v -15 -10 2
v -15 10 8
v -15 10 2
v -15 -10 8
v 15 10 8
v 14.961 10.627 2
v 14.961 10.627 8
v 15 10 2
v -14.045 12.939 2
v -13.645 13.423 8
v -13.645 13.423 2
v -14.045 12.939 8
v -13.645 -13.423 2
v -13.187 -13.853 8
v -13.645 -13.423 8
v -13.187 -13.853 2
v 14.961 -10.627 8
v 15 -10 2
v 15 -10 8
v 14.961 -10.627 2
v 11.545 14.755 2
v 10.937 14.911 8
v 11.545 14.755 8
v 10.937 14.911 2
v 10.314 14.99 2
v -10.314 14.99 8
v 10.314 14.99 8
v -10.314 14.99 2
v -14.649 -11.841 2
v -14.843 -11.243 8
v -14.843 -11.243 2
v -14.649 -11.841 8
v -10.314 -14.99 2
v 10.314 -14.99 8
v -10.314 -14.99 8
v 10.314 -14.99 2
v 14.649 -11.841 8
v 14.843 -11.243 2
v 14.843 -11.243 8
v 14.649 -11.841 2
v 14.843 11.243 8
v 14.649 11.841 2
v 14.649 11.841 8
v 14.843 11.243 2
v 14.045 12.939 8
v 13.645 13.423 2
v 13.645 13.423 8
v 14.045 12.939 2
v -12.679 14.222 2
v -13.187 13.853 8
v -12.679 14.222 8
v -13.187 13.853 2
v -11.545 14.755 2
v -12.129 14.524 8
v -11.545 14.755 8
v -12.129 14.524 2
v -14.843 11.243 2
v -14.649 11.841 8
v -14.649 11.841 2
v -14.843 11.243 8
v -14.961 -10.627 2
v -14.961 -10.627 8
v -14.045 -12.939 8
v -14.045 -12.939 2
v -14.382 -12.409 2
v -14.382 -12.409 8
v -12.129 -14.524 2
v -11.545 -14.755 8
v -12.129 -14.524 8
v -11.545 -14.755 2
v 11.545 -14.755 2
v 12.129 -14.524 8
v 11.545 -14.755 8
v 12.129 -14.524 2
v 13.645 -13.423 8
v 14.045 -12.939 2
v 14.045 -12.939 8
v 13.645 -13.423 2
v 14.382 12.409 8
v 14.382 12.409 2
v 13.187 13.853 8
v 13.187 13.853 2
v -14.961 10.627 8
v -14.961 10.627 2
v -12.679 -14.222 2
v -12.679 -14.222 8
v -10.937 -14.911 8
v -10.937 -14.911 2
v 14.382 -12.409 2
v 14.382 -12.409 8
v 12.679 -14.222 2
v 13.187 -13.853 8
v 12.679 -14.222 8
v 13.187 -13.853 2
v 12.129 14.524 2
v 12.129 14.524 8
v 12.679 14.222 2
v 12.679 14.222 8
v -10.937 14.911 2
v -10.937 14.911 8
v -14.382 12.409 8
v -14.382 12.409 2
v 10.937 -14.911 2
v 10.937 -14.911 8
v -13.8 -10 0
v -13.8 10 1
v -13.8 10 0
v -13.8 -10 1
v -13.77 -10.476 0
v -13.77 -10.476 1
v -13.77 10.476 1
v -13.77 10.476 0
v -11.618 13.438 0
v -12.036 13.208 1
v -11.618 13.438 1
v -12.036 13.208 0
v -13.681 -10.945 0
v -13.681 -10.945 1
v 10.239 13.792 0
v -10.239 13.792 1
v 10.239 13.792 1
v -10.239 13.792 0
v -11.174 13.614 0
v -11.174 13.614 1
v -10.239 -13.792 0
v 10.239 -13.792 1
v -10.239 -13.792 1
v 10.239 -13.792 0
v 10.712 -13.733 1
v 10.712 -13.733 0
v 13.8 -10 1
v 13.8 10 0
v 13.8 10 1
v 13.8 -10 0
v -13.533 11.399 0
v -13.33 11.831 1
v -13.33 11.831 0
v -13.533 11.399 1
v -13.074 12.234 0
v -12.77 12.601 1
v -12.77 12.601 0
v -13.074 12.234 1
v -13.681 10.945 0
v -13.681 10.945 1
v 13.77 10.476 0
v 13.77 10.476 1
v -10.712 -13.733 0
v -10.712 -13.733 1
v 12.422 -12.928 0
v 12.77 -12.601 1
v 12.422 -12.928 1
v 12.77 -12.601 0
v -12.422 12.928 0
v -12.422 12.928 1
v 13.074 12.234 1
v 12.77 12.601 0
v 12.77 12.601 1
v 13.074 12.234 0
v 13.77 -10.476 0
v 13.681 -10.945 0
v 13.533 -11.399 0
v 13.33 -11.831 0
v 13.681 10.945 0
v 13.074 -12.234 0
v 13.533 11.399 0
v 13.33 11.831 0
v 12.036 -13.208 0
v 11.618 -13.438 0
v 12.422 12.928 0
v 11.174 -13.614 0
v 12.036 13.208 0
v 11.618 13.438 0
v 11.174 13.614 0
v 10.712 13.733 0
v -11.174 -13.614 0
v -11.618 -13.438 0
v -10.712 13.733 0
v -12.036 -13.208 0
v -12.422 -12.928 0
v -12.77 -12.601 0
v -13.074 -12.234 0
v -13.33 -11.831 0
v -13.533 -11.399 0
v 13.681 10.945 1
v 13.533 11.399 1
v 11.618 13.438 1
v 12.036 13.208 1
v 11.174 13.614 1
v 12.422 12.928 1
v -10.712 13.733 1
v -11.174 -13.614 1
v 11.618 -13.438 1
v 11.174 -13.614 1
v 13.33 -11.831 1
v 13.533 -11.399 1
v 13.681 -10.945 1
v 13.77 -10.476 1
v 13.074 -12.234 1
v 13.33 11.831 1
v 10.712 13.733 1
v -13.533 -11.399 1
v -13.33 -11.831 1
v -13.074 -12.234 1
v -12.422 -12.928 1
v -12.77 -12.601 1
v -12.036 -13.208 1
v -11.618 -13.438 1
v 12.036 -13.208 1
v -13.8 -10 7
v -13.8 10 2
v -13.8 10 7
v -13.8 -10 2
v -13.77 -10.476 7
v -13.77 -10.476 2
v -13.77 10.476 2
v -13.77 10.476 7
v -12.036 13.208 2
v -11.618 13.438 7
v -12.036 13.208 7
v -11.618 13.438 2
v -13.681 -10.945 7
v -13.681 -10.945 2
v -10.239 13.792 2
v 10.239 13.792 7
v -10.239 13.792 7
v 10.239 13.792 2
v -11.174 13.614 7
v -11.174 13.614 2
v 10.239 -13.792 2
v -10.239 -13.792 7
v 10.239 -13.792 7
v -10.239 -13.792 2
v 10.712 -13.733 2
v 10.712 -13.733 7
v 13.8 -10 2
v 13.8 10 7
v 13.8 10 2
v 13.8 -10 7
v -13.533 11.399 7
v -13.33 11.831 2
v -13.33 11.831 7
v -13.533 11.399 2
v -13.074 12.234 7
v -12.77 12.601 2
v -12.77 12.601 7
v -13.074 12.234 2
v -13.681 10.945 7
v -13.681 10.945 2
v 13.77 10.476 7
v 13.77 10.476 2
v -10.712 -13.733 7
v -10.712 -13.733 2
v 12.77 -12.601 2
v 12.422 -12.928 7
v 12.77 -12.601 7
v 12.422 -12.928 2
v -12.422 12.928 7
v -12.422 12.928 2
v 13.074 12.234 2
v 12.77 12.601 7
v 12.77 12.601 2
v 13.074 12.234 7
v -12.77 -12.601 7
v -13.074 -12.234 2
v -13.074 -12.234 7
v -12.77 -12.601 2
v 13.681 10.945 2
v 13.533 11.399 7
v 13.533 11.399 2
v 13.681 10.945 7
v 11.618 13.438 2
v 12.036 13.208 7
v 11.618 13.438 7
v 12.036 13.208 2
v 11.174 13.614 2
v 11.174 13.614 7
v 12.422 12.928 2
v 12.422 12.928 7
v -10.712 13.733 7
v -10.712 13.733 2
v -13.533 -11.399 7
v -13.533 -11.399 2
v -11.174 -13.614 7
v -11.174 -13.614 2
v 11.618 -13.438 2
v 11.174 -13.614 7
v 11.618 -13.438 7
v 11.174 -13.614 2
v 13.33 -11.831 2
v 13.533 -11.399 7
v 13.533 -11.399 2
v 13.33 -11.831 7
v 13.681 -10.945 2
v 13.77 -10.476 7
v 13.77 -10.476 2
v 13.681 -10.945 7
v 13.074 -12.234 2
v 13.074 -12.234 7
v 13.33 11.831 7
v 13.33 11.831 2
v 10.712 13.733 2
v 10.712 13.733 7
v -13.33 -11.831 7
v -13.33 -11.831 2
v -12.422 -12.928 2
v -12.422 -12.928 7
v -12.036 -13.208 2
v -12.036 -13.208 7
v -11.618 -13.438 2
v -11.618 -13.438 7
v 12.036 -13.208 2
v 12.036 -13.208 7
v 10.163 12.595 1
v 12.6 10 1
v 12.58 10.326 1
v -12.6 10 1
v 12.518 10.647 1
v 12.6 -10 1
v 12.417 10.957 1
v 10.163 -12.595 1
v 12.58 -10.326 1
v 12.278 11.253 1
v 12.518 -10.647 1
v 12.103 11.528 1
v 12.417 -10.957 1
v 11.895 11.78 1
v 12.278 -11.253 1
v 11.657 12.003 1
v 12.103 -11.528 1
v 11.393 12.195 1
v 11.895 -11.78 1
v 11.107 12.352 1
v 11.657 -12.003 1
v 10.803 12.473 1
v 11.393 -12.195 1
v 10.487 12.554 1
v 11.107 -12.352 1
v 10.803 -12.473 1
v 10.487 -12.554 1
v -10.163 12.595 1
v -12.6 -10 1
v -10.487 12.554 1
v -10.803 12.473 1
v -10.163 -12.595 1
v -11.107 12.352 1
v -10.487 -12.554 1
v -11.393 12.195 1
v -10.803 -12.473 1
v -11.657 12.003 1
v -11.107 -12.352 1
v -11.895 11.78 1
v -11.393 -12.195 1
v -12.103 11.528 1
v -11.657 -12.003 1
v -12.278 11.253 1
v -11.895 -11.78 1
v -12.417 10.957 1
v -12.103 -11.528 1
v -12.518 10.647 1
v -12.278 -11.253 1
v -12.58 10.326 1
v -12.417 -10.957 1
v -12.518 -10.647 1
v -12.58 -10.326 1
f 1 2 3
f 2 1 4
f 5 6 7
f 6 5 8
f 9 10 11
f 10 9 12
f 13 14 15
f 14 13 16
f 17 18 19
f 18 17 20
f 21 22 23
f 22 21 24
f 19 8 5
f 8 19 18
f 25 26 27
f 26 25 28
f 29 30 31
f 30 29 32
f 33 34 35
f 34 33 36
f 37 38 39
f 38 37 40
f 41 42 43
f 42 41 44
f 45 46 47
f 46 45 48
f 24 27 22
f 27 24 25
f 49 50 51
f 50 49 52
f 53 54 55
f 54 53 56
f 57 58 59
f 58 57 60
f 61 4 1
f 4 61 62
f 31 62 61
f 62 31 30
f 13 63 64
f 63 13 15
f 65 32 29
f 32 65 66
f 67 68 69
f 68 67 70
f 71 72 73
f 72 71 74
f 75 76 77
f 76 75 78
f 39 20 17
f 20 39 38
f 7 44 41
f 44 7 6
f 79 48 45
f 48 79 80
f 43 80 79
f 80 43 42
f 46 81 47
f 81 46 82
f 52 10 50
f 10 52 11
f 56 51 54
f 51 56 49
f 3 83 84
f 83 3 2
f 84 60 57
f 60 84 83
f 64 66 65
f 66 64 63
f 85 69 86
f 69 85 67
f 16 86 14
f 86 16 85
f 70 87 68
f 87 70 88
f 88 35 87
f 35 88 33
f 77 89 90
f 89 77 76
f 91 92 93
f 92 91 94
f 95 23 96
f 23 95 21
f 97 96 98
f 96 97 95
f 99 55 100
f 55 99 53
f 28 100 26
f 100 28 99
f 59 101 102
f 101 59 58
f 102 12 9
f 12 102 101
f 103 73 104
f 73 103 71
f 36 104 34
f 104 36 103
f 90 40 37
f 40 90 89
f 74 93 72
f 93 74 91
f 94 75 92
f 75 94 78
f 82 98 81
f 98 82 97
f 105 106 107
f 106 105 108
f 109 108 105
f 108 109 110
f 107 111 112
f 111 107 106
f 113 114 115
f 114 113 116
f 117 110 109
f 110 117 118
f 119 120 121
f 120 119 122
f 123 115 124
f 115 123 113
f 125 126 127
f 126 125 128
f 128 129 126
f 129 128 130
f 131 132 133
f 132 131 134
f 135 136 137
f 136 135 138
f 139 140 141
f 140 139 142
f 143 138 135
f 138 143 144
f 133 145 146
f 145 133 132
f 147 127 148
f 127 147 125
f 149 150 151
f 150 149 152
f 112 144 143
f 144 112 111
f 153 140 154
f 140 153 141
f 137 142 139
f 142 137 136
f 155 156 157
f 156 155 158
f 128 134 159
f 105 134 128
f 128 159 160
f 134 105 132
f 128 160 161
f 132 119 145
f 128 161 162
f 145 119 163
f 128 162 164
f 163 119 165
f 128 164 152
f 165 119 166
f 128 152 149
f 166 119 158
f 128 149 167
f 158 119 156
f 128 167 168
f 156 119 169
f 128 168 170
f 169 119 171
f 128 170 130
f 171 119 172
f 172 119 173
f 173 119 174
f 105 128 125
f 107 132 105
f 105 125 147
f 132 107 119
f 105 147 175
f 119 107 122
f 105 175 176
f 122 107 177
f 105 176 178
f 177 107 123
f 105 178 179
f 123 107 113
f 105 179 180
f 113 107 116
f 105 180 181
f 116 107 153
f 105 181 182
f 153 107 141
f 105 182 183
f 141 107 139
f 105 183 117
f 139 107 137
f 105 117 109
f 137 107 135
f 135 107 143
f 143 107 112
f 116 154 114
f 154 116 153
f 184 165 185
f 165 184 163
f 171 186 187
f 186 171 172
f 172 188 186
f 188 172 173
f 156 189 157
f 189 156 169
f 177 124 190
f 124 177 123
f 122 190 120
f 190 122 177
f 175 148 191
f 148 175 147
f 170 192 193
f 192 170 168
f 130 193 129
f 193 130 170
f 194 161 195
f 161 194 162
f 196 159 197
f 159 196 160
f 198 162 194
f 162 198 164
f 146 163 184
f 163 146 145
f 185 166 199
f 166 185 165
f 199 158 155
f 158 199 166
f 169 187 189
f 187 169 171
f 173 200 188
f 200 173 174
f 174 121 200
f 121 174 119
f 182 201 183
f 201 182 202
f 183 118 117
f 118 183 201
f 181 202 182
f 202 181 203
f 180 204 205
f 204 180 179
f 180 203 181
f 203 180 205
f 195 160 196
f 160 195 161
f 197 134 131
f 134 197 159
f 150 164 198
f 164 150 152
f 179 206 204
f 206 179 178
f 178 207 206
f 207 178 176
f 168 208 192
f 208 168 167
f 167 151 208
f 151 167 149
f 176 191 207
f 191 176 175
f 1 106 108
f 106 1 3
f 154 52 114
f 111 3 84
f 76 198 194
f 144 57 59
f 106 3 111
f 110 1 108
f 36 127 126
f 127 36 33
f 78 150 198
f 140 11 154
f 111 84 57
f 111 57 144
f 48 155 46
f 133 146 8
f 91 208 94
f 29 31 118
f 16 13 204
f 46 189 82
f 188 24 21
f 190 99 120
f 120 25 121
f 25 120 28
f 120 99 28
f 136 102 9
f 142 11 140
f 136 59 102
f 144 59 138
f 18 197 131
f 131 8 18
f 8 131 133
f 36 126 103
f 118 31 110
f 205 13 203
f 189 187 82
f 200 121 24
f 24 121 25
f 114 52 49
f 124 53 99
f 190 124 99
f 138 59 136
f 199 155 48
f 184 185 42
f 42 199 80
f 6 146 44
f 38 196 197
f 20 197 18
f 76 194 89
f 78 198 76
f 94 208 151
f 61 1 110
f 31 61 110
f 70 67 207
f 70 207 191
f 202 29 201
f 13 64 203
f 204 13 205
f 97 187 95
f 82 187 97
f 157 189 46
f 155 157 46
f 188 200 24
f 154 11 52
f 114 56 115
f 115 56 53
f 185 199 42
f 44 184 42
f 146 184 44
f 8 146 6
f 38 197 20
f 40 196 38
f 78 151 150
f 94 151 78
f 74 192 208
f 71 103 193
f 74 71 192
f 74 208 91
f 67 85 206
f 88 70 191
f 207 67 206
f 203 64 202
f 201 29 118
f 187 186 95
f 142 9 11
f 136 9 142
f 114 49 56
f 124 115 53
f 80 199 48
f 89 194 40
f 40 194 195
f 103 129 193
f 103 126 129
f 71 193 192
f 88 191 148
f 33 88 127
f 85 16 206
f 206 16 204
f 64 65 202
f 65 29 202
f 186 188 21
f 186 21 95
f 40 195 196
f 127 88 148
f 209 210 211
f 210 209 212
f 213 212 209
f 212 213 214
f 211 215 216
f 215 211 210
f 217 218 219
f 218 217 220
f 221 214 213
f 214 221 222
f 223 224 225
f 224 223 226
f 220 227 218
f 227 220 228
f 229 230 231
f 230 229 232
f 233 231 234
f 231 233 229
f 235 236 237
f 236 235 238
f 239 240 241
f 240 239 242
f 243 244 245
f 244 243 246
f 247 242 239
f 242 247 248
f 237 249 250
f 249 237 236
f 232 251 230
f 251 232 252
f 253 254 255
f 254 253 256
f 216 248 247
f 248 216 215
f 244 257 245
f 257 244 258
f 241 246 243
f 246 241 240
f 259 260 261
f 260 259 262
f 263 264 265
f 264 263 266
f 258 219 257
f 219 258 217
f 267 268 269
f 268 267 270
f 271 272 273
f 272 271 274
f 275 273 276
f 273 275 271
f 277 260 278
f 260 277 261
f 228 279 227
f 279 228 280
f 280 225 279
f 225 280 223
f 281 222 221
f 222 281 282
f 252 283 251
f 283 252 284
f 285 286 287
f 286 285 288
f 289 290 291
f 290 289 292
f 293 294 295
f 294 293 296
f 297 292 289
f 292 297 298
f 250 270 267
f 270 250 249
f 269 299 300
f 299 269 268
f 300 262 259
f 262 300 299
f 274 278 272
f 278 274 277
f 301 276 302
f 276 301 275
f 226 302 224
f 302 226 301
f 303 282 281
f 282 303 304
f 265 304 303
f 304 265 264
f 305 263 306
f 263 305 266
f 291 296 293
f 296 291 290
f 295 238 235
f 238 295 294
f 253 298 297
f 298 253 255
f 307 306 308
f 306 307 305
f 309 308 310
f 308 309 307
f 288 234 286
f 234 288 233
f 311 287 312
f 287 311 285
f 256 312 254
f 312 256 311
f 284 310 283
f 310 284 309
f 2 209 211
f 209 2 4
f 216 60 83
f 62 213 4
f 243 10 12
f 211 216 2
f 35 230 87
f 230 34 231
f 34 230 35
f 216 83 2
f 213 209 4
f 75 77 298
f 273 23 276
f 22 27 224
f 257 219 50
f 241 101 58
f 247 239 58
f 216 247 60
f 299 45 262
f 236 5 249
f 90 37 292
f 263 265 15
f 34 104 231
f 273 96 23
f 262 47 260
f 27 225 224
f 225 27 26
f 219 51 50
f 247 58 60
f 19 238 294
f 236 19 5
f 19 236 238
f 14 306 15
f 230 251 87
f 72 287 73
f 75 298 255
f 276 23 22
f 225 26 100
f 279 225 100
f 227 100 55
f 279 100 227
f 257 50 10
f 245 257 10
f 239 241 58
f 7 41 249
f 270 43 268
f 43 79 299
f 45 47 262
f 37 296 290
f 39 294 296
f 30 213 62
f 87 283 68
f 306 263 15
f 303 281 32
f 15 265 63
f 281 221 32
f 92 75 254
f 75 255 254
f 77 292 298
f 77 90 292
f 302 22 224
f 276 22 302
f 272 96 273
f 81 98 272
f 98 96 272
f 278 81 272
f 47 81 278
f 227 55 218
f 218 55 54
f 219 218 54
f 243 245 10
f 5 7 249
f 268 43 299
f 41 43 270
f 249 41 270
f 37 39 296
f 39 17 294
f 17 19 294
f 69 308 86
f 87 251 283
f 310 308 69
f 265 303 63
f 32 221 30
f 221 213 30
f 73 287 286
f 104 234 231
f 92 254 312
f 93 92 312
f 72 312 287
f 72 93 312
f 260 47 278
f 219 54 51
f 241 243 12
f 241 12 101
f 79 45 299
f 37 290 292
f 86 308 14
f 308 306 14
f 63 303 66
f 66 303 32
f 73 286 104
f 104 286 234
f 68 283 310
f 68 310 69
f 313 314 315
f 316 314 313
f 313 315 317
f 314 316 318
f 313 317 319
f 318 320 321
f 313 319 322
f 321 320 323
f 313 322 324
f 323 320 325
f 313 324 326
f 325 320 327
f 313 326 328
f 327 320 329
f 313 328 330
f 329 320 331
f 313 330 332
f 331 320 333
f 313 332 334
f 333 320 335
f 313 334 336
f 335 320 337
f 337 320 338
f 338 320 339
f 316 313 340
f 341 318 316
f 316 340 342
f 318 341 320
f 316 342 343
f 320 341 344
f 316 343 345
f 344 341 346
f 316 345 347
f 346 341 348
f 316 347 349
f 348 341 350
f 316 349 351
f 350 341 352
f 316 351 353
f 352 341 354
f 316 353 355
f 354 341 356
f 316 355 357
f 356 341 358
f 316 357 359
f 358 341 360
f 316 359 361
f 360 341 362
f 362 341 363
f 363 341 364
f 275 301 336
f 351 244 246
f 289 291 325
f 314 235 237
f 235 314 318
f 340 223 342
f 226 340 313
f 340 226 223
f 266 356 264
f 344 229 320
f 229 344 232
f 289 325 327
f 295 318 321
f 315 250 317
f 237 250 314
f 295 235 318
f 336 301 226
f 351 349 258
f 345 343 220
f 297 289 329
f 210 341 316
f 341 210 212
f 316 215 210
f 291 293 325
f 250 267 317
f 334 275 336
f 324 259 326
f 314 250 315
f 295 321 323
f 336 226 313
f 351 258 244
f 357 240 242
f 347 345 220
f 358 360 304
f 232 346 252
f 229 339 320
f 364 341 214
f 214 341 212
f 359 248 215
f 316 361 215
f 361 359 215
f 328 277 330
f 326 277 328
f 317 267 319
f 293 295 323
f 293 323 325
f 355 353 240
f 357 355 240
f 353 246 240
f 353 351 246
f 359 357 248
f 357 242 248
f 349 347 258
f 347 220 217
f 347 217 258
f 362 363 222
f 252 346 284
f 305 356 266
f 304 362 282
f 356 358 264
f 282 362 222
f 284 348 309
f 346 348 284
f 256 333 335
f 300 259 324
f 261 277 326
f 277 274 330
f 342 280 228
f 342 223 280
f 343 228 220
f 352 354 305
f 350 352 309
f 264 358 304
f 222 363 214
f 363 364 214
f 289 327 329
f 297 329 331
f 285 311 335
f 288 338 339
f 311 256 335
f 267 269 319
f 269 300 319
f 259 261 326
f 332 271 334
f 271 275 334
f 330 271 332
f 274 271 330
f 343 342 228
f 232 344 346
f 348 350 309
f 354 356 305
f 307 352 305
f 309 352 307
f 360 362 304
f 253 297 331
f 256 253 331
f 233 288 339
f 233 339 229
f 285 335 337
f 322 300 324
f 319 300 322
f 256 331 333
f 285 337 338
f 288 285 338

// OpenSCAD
$fn = 50;


difference() {
	union() {
		translate(v = [0, 0, 2]) {
			hull() {
				translate(v = [-10.0000000000, 10.0000000000, 0]) {
					cylinder(h = 6, r = 5);
				}
				translate(v = [10.0000000000, 10.0000000000, 0]) {
					cylinder(h = 6, r = 5);
				}
				translate(v = [-10.0000000000, -10.0000000000, 0]) {
					cylinder(h = 6, r = 5);
				}
				translate(v = [10.0000000000, -10.0000000000, 0]) {
					cylinder(h = 6, r = 5);
				}
			}
		}
		hull() {
			translate(v = [-10.0000000000, 10.0000000000, 0]) {
				cylinder(h = 1, r = 3.8000000000);
			}
			translate(v = [10.0000000000, 10.0000000000, 0]) {
				cylinder(h = 1, r = 3.8000000000);
			}
			translate(v = [-10.0000000000, -10.0000000000, 0]) {
				cylinder(h = 1, r = 3.8000000000);
			}
			translate(v = [10.0000000000, -10.0000000000, 0]) {
				cylinder(h = 1, r = 3.8000000000);
			}
		}
		translate(v = [0, 0, 1]) {
			hull() {
				translate(v = [-10.0000000000, 10.0000000000, 0]) {
					cylinder(h = 1, r1 = 3.8000000000, r2 = 5.0000000000);
				}
				translate(v = [10.0000000000, 10.0000000000, 0]) {
					cylinder(h = 1, r1 = 3.8000000000, r2 = 5.0000000000);
				}
				translate(v = [-10.0000000000, -10.0000000000, 0]) {
					cylinder(h = 1, r1 = 3.8000000000, r2 = 5.0000000000);
				}
				translate(v = [10.0000000000, -10.0000000000, 0]) {
					cylinder(h = 1, r1 = 3.8000000000, r2 = 5.0000000000);
				}
			}
		}
	}
	union() {
		translate(v = [0, 0, 2]) {
			#hull() {
				translate(v = [-10.0000000000, 10.0000000000, 0]) {
					cylinder(h = 6, r = 3.8000000000);
				}
				translate(v = [10.0000000000, 10.0000000000, 0]) {
					cylinder(h = 6, r = 3.8000000000);
				}
				translate(v = [-10.0000000000, -10.0000000000, 0]) {
					cylinder(h = 6, r = 3.8000000000);
				}
				translate(v = [10.0000000000, -10.0000000000, 0]) {
					cylinder(h = 6, r = 3.8000000000);
				}
			}
		}
		translate(v = [0, 0, 7]) {
			hull() {
				translate(v = [-10.0000000000, 10.0000000000, 0]) {
					cylinder(h = 1, r1 = 3.8000000000, r2 = 5.0000000000);
				}
				translate(v = [10.0000000000, 10.0000000000, 0]) {
					cylinder(h = 1, r1 = 3.8000000000, r2 = 5.0000000000);
				}
				translate(v = [-10.0000000000, -10.0000000000, 0]) {
					cylinder(h = 1, r1 = 3.8000000000, r2 = 5.0000000000);
				}
				translate(v = [10.0000000000, -10.0000000000, 0]) {
					cylinder(h = 1, r1 = 3.8000000000, r2 = 5.0000000000);
				}
			}
		}
		translate(v = [0, 0, 1]) {
			#hull() {
				translate(v = [-10.0000000000, 10.0000000000, 0]) {
					cylinder(h = 1, r1 = 2.6000000000, r2 = 3.8000000000);
				}
				translate(v = [10.0000000000, 10.0000000000, 0]) {
					cylinder(h = 1, r1 = 2.6000000000, r2 = 3.8000000000);
				}
				translate(v = [-10.0000000000, -10.0000000000, 0]) {
					cylinder(h = 1, r1 = 2.6000000000, r2 = 3.8000000000);
				}
				translate(v = [10.0000000000, -10.0000000000, 0]) {
					cylinder(h = 1, r1 = 2.6000000000, r2 = 3.8000000000);
				}
			}
		}
	}
}
